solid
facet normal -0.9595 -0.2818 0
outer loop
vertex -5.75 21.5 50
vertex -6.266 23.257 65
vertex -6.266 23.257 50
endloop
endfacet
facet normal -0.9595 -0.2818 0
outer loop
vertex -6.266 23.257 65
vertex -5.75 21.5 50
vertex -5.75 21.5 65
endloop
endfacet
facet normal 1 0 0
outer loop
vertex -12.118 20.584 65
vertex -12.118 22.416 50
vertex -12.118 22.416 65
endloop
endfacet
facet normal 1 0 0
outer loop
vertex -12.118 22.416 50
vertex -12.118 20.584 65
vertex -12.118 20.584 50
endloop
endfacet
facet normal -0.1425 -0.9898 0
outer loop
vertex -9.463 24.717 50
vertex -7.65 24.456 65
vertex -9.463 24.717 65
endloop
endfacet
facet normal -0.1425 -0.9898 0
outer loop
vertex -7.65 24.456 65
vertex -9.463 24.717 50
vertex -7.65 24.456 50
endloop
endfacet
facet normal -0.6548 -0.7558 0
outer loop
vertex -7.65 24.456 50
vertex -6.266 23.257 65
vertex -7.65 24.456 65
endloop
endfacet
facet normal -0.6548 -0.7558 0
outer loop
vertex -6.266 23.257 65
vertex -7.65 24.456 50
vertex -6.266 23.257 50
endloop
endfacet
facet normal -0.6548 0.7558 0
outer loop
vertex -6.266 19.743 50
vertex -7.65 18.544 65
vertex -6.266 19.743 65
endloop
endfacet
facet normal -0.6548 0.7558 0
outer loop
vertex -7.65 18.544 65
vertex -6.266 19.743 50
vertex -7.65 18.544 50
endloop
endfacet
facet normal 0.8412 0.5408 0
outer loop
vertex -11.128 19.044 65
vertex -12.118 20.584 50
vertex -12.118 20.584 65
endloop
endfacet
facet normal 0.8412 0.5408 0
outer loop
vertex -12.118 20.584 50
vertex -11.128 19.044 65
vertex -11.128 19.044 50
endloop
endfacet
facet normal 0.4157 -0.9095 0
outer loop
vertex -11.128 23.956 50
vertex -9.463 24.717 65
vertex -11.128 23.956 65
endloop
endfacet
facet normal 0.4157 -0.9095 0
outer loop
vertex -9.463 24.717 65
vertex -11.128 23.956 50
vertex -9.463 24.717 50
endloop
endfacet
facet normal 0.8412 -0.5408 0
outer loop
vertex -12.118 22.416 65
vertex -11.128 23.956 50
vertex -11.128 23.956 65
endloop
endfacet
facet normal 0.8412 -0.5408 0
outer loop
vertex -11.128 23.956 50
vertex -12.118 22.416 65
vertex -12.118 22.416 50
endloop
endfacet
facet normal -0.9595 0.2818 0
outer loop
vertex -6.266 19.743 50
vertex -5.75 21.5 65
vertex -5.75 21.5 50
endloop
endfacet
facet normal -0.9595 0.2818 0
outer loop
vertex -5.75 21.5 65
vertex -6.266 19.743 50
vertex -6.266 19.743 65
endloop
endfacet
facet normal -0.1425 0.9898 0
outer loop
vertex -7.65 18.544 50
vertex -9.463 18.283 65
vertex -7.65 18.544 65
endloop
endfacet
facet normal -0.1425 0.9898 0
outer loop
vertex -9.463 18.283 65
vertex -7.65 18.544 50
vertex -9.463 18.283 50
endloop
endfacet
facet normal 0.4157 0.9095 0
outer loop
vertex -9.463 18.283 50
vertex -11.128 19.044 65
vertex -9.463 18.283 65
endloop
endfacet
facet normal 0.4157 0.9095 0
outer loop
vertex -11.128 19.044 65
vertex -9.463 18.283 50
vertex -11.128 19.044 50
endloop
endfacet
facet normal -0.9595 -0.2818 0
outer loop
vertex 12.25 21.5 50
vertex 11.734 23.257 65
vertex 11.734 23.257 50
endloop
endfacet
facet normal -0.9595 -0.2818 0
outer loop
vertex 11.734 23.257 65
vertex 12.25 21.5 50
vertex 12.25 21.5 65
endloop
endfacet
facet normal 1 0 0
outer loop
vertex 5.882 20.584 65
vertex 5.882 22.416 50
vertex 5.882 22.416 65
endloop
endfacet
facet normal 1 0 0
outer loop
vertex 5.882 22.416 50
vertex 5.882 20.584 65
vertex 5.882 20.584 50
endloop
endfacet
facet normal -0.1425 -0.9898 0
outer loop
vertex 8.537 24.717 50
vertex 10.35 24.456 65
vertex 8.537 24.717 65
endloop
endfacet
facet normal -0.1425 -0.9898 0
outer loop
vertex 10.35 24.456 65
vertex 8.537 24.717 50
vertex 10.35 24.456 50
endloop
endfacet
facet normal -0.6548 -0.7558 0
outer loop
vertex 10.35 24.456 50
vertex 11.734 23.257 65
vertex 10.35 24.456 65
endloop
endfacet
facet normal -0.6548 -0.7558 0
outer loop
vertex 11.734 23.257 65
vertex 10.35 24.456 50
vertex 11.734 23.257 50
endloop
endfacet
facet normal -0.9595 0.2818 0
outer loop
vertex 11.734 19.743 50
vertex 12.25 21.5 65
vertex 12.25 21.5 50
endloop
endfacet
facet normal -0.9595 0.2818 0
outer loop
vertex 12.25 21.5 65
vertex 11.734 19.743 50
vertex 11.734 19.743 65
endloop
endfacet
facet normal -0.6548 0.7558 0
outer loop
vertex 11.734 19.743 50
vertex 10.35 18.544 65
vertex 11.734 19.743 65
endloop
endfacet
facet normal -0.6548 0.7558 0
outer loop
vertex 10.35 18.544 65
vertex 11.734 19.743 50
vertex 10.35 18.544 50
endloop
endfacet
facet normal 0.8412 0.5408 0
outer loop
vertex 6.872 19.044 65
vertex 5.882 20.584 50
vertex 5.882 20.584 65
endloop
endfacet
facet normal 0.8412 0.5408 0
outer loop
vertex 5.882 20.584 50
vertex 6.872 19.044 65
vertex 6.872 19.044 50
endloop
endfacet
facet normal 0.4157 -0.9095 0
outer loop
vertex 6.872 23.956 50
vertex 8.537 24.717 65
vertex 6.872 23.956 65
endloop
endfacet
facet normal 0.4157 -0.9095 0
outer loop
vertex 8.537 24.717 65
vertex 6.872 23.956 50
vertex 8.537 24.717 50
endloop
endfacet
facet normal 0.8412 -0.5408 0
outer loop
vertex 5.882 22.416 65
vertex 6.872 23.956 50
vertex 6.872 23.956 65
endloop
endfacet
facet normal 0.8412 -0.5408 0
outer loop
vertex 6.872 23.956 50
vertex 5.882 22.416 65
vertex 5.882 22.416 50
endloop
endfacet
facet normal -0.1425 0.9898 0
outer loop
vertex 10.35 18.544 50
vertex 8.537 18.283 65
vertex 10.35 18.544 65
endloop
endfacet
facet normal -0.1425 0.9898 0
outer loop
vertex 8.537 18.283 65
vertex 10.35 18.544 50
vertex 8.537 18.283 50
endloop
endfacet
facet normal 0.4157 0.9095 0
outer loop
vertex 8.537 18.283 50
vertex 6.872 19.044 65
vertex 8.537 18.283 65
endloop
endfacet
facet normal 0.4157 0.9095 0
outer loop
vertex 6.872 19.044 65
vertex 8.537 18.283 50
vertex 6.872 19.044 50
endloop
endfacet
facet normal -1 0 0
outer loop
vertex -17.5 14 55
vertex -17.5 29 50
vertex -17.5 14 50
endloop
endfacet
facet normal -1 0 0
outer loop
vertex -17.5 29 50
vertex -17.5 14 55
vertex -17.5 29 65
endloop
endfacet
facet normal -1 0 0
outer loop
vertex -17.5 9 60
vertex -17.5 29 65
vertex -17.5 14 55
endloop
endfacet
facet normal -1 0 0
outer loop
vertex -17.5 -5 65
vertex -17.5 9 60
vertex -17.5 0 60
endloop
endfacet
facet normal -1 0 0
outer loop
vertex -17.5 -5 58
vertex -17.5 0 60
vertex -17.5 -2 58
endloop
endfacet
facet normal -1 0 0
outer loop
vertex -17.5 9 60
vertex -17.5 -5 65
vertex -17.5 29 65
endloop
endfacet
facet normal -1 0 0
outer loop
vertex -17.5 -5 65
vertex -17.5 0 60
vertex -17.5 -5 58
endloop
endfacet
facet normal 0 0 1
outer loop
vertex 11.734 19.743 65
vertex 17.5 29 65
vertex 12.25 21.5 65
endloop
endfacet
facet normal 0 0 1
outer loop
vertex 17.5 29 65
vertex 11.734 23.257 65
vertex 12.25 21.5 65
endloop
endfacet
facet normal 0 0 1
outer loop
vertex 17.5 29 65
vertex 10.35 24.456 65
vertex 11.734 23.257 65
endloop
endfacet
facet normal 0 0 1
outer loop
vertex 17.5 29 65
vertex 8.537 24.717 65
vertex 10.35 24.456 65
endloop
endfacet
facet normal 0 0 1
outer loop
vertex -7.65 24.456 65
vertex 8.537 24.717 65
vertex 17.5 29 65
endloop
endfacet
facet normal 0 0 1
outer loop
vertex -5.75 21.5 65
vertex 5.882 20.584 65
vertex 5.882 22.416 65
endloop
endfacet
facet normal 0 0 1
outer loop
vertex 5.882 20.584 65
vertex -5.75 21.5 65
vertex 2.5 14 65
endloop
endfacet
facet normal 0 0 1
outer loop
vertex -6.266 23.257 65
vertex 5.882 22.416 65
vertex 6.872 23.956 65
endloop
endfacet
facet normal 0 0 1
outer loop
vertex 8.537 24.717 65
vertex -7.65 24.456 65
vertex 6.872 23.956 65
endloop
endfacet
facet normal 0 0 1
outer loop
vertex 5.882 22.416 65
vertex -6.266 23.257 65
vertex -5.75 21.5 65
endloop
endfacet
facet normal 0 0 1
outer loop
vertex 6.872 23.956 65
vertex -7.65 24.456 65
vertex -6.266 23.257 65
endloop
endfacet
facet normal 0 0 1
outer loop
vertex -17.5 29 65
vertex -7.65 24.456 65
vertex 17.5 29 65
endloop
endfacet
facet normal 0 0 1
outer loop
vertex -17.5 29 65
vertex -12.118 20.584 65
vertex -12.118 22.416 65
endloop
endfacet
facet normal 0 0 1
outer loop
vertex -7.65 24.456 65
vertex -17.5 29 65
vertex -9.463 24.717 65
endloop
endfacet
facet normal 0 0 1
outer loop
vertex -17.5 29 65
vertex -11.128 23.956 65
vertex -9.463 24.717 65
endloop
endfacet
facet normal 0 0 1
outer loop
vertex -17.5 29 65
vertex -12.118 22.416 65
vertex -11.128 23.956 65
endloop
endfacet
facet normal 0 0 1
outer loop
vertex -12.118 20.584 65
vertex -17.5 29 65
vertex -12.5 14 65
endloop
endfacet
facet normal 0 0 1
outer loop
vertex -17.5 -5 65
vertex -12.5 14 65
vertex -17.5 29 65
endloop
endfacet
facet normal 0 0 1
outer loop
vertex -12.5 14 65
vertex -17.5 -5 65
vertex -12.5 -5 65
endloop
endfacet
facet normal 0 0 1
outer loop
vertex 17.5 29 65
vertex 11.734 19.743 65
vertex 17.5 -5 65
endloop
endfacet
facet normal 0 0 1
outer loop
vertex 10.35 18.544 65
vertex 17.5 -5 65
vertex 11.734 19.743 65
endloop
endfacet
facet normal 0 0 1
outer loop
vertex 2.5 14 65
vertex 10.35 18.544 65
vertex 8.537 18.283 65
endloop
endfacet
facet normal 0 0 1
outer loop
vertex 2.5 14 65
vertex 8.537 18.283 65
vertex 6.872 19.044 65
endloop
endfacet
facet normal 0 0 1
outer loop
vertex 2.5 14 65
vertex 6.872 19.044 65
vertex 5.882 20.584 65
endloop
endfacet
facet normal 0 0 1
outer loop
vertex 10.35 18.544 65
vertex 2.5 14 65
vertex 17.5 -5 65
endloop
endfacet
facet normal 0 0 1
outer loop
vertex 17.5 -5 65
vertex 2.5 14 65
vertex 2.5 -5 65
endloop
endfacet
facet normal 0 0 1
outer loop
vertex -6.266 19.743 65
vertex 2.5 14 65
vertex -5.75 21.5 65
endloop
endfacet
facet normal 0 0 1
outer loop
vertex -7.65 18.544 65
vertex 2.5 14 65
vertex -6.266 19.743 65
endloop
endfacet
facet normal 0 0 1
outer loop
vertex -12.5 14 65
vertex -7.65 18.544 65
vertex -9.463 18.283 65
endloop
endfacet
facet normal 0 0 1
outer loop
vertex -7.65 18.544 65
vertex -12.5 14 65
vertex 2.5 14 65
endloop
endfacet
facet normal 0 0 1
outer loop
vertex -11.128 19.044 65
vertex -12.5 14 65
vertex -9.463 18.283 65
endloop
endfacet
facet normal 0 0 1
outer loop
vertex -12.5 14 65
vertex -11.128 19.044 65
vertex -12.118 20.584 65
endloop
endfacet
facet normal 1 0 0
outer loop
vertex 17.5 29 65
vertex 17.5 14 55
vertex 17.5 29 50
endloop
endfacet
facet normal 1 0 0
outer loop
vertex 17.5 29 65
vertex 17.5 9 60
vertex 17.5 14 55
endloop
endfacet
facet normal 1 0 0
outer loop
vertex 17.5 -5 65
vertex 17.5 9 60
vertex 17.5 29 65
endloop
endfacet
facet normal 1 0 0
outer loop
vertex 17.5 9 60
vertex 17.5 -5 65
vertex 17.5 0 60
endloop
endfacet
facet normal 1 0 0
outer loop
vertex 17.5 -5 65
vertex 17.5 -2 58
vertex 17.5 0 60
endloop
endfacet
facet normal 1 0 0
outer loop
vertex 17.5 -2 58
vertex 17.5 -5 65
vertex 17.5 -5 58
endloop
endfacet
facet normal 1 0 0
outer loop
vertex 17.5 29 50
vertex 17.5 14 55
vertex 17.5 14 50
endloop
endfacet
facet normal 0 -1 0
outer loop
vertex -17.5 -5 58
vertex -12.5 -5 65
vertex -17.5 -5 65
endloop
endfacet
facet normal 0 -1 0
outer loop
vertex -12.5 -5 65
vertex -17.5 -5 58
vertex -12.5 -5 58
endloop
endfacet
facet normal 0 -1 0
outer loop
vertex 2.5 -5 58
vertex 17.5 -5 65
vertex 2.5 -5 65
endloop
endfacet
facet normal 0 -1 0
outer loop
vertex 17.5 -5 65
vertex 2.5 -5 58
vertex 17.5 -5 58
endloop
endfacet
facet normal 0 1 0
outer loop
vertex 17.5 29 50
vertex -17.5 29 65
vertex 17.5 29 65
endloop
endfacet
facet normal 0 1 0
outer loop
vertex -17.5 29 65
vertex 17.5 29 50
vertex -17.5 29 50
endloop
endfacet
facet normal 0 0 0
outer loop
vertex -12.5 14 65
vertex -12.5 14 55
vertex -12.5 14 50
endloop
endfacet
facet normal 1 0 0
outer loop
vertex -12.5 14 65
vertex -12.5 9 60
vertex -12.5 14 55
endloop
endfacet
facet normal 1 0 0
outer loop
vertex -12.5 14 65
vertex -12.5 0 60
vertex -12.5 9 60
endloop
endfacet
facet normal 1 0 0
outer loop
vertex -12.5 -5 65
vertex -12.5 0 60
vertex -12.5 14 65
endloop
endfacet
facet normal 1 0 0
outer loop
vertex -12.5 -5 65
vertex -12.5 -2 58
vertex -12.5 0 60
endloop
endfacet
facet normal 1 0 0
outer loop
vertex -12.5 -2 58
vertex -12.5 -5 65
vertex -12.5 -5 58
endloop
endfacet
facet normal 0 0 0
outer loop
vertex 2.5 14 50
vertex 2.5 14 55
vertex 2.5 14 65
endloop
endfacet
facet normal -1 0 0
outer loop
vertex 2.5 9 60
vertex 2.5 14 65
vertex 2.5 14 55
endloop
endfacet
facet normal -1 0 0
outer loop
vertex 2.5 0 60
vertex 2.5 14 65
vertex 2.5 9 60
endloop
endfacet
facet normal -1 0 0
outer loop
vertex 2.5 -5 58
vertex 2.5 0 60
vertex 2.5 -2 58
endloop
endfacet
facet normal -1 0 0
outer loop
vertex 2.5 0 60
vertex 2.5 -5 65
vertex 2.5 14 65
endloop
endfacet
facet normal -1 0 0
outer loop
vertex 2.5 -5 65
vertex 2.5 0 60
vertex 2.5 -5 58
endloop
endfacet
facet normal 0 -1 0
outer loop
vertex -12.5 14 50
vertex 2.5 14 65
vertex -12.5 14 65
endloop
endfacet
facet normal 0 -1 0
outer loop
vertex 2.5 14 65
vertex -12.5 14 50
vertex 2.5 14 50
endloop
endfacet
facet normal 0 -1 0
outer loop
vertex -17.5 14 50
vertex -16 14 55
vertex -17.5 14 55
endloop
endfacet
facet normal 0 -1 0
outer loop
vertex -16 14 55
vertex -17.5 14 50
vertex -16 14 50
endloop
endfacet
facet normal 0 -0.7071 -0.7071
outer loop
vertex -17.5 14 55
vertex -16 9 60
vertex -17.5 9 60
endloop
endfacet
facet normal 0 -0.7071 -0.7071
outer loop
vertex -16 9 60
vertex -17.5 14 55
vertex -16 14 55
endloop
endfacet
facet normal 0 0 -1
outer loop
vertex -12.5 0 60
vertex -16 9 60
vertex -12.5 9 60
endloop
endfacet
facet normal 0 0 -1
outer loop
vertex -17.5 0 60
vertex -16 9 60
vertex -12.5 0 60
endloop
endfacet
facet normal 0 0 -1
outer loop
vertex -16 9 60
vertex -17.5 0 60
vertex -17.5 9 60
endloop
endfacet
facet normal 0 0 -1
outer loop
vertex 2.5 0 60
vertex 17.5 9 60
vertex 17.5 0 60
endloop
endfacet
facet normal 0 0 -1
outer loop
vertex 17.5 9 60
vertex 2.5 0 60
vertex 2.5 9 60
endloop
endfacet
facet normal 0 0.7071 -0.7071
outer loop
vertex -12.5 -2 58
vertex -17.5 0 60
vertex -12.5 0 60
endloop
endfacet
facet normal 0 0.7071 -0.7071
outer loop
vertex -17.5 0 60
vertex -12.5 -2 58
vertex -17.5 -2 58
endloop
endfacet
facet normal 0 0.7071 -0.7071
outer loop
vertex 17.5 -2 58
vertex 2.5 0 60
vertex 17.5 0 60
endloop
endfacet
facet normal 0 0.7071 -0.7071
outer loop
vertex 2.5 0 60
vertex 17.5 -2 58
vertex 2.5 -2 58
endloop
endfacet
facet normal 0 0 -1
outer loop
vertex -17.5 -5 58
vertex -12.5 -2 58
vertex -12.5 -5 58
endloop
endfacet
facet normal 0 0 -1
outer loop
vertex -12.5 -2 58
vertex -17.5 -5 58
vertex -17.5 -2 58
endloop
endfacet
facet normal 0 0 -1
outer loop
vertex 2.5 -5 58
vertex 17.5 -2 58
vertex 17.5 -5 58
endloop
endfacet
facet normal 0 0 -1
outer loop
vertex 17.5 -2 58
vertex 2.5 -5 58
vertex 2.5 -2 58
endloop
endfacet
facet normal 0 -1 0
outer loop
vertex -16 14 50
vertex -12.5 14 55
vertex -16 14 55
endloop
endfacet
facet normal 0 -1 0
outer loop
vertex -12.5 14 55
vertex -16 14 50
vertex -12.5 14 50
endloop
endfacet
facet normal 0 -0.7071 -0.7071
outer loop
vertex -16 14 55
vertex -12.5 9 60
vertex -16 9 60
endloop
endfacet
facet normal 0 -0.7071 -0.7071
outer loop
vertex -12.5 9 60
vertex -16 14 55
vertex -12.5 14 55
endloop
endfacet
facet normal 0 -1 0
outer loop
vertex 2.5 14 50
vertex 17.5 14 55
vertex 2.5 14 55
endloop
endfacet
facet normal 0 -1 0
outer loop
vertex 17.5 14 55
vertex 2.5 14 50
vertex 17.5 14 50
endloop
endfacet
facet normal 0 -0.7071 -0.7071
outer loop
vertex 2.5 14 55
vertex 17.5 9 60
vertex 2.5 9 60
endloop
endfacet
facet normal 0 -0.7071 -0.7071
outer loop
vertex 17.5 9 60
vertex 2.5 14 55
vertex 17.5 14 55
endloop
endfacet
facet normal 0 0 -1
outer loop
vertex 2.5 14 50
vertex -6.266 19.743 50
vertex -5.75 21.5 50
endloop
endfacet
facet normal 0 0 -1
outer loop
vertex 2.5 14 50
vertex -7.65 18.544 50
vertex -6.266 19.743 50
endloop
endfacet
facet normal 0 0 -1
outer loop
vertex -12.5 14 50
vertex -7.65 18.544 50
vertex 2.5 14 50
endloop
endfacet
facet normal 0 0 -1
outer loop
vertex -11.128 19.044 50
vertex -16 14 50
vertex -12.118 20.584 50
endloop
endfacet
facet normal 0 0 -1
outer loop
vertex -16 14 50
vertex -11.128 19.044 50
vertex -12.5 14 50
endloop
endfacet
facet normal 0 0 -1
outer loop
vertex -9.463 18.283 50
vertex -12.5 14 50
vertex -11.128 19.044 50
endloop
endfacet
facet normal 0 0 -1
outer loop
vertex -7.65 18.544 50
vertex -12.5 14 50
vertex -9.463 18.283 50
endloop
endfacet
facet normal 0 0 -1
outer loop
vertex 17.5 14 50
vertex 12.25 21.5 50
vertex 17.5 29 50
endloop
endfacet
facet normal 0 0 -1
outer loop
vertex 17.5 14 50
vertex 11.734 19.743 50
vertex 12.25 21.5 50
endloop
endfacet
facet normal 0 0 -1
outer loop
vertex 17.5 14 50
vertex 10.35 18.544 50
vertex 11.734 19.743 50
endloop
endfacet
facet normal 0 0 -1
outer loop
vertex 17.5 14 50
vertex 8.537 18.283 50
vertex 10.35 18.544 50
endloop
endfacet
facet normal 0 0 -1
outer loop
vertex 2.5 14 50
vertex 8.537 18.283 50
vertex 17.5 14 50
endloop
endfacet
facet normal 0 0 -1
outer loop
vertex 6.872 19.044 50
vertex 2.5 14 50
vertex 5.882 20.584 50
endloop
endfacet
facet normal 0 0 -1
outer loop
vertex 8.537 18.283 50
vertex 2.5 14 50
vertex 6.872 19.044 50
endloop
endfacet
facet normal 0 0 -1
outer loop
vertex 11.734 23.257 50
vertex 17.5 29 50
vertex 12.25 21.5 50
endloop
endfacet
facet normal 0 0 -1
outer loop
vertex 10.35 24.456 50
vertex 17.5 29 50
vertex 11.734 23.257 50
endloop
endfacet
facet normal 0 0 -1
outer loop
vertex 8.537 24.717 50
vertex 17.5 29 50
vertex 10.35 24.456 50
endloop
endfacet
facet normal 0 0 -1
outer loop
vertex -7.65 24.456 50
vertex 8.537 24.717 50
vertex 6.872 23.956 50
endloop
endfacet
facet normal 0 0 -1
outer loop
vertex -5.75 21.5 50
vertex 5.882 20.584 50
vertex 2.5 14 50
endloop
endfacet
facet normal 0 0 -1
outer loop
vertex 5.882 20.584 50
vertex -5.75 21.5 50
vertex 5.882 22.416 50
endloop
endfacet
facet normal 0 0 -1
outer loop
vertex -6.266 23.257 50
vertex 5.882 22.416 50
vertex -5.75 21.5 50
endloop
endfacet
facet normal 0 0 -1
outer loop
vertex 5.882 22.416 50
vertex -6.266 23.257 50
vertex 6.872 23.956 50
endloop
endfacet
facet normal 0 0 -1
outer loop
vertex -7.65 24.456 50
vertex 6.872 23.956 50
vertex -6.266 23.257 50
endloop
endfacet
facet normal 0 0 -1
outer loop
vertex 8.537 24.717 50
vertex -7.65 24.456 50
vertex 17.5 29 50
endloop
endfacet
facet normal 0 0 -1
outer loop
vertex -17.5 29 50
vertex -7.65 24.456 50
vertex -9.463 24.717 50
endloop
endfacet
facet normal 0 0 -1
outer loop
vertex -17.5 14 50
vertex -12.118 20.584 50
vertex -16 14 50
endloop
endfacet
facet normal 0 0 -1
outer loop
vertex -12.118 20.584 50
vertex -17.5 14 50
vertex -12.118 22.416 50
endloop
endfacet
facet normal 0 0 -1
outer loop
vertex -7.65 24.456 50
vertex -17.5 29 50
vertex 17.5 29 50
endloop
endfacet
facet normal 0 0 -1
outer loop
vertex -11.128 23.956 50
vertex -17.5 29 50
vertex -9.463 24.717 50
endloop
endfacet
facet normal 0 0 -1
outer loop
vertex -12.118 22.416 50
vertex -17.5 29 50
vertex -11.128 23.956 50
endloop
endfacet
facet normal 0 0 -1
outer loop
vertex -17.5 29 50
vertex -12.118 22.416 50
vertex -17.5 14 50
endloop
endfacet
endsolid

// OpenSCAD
/* A clamp for Nokia 808, requires the plate, and a 5 mm bolt and a winged nut.
 *
 * Author: Lari Koponen
 * Version: 0.0
 */

module rounded_cubic_cylinder(w,d,h,r)
{
	union()
	{
		for (x = [-(w/2-r),w/2-r]) {
			for (y = [-(d/2-r),d/2-r]) {
				translate([x,y,0]) cylinder(h = h, r = r, $fn = 16);
			}
		}
		translate([-(w-2*r)/2,-d/2,0]) cube([w-2*r,d,h]);
		translate([-w/2,-(d-2*r)/2,0]) cube([w,d-2*r,h]);
	}
}

phone_width = 60;
phone_thickness = 14;

adapter_width = 35;

width = 39;
depth = 40;
height = 8;
thickness_side = 4;
thickness_base = 3;
eps = 0.001;

difference() {
    union() {
        translate([0, 12, -4])
        rotate([180, 0, 90])
        difference() {
            // The plate.
            x1 = width;
            y1 = depth;
            z1 = height;
            rounded_cubic_cylinder(x1, y1, z1, thickness_side);
            
            // Center cut out.
            x2 = width - 2 * thickness_side;
            y2 = depth - 2 * thickness_side;
            z2 = height - thickness_base + eps;
            translate([0, 0, thickness_base]) rounded_cubic_cylinder(x2, y2, z2, thickness_side);

            // Left and right dovetail.
            for (sign = [-1, 1]) {
                translate([34/2 * sign, -20 * sign, thickness_base])
                rotate([90, 0, 90 + 90 * sign])
                linear_extrude(height = 40, center = false, convexity = 10, twist = 0, slices = 10)
                polygon([[0, 0], [0, 1], [-4, 5], [-4, 0]]);
            }
            
            // Front and back ramps.
            for (sign = [-1, 1]) {
                //translate([34/2 * sign, -20 * sign, thickness_base])
                translate([4 * sign, depth/2 * sign, height])
                rotate([90, 0, 180 + 90 * sign])
                linear_extrude(height = 8, center = false, convexity = 10, twist = 0, slices = 8)
                polygon([[-1, 1], [-1, -4], [4, 1]]);
            }
        }
    
        translate([-adapter_width/2, -5, -5]) cube([adapter_width, phone_thickness + 5 + 15, phone_width + 5 + 5]);
    }    

    translate([-(adapter_width-10)/2, -10, 20]) cube([adapter_width - 20, phone_thickness + 10, 100]);
    
    // A cut out for Nokia 808 phone.
    translate([-20, 0, 0])
    rotate([90, 0, 90])
    linear_extrude(height = 40, center = false, convexity = 10, twist = 0, slices = 10)
    polygon([[-10, 2], [-2, 2], [0, 0], [phone_thickness - 5, 0], [phone_thickness, 5], [phone_thickness, phone_width - 5], [phone_thickness - 5, phone_width], [0, phone_width], [-2, phone_width - 2], [-10, phone_width - 2]]);
    
    // Holes.
    for (position = [-9, 9]) {
        translate([position, 14 + 7.5, -10]) cylinder(d = 6.5, h = phone_width + 20);
    }
    
    for (position = [-9, 9]) {
        translate([-10.5/2 + position, -50, 35]) cube([10.5, 100, 7]);
        translate([-13.5/2 + position, -50, 40]) cube([13.5, 100, 2]);
    }
        
    translate([-50, -50, -20]) cube([100, 100, 70]);
}
